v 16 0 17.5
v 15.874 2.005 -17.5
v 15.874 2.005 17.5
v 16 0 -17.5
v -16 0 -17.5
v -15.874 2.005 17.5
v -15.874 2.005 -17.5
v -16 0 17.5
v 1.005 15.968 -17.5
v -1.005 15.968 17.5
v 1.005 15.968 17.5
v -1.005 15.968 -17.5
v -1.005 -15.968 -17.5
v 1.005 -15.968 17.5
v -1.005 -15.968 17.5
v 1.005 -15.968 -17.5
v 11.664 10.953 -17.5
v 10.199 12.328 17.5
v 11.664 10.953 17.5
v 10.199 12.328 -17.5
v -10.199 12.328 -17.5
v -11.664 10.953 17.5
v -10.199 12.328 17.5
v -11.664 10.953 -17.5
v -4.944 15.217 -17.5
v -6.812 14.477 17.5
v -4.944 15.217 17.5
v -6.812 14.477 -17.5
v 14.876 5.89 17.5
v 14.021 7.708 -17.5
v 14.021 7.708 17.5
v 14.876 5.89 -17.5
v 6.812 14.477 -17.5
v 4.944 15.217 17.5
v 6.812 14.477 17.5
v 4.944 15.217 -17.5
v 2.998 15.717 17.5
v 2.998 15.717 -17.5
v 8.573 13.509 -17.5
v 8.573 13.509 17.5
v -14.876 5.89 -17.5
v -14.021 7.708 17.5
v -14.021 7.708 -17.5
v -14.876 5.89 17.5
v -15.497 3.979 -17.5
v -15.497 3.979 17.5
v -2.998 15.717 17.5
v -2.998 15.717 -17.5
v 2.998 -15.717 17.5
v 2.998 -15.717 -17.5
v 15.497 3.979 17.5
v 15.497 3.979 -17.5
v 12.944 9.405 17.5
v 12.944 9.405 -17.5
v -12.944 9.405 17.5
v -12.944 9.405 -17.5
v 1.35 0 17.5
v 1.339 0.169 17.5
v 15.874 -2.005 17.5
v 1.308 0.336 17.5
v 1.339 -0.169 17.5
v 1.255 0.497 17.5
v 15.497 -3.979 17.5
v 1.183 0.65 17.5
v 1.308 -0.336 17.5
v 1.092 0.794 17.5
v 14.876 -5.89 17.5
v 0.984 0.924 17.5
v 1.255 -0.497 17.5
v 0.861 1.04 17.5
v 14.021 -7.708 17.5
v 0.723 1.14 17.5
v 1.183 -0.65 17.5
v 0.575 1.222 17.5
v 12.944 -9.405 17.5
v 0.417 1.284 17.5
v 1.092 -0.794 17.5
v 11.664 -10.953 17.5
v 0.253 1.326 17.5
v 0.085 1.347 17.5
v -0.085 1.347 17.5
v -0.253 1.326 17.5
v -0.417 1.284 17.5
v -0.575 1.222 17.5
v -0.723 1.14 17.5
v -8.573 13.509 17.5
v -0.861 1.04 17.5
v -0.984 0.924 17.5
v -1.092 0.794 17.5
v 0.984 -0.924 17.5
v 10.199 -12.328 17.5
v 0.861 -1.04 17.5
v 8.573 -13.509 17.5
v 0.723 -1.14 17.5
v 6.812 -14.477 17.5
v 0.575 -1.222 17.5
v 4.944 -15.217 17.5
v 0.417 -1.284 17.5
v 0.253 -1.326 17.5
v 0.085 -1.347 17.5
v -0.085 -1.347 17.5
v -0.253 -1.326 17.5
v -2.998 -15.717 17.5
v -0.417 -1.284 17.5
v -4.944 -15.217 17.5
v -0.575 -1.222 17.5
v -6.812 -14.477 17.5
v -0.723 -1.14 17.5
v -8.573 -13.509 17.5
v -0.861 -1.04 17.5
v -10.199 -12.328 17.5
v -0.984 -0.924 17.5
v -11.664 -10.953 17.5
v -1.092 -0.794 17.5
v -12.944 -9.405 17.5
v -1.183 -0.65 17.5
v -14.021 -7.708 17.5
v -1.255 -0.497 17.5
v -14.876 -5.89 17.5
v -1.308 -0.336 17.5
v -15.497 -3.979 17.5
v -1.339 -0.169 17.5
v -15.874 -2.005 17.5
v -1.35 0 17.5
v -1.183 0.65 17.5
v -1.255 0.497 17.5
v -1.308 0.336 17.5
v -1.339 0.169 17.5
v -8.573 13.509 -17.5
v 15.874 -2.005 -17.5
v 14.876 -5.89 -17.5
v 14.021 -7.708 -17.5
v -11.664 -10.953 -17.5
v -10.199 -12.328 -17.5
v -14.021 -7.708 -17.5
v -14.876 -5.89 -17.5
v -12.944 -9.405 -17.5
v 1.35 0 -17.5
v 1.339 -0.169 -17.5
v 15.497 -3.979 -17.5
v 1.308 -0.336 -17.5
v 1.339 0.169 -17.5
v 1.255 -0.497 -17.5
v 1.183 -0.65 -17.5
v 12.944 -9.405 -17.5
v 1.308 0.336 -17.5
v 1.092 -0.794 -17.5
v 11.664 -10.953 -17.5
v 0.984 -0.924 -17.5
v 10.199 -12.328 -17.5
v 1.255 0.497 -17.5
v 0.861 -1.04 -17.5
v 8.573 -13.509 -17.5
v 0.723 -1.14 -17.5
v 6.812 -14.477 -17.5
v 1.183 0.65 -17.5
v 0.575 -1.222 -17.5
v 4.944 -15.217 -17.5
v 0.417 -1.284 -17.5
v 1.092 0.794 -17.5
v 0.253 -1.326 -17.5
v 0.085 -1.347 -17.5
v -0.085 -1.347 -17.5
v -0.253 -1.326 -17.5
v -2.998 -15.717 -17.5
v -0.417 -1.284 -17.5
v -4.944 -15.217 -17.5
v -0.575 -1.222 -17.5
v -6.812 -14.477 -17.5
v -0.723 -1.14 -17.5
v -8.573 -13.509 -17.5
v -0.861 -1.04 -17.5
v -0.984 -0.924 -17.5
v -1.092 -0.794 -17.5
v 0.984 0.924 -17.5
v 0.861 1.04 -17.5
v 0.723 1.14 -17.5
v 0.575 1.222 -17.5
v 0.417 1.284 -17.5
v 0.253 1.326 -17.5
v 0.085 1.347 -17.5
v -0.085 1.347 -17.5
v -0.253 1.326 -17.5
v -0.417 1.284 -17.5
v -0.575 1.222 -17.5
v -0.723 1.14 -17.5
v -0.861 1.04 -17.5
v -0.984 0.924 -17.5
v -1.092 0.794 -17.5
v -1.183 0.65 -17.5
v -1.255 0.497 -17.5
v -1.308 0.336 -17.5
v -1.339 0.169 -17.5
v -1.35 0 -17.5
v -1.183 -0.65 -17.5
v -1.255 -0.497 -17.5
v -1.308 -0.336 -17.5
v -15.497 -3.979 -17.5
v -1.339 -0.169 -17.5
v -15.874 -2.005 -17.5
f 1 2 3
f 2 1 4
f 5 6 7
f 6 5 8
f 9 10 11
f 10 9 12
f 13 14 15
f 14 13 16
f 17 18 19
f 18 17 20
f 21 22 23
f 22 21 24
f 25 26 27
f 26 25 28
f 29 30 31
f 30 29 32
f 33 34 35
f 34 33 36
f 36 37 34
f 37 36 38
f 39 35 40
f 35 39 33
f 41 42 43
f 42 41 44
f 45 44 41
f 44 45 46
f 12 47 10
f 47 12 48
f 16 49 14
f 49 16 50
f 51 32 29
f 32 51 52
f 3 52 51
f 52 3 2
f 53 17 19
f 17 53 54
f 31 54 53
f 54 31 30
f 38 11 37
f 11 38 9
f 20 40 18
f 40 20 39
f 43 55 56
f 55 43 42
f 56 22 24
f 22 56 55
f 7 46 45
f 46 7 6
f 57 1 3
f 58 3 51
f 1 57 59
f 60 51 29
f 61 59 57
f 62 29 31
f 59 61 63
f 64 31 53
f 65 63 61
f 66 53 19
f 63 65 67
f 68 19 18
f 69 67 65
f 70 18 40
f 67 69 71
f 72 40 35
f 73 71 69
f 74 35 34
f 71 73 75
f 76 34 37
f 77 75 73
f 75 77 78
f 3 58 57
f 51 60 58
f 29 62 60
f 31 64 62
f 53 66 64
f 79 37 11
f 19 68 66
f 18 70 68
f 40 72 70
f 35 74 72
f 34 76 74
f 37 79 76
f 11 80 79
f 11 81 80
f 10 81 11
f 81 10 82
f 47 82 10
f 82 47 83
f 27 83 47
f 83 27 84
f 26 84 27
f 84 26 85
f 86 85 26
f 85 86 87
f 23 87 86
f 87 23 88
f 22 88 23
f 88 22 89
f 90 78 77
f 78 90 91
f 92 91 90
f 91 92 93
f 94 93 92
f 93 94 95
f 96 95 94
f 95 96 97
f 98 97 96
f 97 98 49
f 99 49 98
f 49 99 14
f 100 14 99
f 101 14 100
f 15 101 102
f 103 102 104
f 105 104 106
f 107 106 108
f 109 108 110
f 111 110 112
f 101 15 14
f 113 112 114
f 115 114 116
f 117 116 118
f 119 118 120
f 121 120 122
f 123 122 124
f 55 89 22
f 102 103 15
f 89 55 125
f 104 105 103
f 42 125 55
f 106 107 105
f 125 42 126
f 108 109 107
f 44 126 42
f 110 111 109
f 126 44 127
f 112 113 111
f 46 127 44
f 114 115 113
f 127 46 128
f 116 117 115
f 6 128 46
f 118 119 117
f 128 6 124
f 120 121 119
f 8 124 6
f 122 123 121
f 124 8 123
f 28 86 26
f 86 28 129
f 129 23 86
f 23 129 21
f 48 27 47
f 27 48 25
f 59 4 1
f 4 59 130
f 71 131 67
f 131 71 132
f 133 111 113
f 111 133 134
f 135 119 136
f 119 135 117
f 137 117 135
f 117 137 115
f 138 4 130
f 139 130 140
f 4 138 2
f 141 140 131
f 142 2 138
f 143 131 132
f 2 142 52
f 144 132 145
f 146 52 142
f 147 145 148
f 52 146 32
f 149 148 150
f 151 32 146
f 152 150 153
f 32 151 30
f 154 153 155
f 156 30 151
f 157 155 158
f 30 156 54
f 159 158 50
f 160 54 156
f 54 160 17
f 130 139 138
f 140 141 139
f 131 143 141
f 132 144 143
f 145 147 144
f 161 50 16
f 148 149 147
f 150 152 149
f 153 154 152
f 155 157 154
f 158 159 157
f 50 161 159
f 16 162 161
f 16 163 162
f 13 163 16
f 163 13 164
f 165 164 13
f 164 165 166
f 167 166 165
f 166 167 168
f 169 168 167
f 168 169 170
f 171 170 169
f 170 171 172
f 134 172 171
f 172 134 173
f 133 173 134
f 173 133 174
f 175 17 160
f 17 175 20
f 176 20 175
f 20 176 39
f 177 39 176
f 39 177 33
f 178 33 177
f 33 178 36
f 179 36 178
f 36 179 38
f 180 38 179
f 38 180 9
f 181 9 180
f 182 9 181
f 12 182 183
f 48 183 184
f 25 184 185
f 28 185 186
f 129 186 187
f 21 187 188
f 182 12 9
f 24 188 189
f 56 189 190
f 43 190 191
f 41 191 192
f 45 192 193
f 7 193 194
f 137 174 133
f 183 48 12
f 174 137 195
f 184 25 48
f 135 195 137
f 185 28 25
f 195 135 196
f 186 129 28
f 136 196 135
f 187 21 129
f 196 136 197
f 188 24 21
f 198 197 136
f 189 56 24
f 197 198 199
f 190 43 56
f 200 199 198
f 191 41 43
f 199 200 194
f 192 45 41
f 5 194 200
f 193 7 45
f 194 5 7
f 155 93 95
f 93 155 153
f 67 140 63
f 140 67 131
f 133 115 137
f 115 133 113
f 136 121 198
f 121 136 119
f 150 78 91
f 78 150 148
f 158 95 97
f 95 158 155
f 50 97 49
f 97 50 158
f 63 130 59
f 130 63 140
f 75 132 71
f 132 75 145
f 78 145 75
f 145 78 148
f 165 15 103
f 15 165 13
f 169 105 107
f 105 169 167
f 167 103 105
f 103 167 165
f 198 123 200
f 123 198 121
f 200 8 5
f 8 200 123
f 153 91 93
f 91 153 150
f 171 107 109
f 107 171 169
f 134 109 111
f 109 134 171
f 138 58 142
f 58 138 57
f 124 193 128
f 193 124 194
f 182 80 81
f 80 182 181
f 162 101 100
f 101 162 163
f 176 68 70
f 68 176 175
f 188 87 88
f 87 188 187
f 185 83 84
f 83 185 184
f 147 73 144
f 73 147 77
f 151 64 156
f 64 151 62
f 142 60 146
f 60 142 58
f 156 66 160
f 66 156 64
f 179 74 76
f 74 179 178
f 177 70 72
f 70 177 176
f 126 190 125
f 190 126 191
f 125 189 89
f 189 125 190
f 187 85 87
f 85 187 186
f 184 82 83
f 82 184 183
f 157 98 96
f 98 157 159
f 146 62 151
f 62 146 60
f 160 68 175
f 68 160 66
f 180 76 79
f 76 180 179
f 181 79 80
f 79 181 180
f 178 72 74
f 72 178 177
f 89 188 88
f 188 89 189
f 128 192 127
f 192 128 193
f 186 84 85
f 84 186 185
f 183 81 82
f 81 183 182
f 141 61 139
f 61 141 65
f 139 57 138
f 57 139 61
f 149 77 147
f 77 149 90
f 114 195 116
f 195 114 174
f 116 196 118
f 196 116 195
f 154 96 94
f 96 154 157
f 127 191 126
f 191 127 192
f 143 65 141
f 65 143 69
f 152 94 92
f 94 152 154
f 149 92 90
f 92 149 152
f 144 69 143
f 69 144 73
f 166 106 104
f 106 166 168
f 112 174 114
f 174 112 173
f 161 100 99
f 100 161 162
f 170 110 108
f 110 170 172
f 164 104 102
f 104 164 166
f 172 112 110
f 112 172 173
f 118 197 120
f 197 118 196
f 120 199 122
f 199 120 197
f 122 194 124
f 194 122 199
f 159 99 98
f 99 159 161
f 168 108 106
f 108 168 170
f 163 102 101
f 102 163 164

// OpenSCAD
$fn = 50;


difference() {
	union() {
		translate(v = [0, 0, -17.5000000000]) {
			cylinder(h = 35, r = 16.0000000000);
		}
	}
	union() {
		translate(v = [0, 0, -100.0000000000]) {
			cylinder(h = 200, r = 1.3500000000);
		}
	}
}
